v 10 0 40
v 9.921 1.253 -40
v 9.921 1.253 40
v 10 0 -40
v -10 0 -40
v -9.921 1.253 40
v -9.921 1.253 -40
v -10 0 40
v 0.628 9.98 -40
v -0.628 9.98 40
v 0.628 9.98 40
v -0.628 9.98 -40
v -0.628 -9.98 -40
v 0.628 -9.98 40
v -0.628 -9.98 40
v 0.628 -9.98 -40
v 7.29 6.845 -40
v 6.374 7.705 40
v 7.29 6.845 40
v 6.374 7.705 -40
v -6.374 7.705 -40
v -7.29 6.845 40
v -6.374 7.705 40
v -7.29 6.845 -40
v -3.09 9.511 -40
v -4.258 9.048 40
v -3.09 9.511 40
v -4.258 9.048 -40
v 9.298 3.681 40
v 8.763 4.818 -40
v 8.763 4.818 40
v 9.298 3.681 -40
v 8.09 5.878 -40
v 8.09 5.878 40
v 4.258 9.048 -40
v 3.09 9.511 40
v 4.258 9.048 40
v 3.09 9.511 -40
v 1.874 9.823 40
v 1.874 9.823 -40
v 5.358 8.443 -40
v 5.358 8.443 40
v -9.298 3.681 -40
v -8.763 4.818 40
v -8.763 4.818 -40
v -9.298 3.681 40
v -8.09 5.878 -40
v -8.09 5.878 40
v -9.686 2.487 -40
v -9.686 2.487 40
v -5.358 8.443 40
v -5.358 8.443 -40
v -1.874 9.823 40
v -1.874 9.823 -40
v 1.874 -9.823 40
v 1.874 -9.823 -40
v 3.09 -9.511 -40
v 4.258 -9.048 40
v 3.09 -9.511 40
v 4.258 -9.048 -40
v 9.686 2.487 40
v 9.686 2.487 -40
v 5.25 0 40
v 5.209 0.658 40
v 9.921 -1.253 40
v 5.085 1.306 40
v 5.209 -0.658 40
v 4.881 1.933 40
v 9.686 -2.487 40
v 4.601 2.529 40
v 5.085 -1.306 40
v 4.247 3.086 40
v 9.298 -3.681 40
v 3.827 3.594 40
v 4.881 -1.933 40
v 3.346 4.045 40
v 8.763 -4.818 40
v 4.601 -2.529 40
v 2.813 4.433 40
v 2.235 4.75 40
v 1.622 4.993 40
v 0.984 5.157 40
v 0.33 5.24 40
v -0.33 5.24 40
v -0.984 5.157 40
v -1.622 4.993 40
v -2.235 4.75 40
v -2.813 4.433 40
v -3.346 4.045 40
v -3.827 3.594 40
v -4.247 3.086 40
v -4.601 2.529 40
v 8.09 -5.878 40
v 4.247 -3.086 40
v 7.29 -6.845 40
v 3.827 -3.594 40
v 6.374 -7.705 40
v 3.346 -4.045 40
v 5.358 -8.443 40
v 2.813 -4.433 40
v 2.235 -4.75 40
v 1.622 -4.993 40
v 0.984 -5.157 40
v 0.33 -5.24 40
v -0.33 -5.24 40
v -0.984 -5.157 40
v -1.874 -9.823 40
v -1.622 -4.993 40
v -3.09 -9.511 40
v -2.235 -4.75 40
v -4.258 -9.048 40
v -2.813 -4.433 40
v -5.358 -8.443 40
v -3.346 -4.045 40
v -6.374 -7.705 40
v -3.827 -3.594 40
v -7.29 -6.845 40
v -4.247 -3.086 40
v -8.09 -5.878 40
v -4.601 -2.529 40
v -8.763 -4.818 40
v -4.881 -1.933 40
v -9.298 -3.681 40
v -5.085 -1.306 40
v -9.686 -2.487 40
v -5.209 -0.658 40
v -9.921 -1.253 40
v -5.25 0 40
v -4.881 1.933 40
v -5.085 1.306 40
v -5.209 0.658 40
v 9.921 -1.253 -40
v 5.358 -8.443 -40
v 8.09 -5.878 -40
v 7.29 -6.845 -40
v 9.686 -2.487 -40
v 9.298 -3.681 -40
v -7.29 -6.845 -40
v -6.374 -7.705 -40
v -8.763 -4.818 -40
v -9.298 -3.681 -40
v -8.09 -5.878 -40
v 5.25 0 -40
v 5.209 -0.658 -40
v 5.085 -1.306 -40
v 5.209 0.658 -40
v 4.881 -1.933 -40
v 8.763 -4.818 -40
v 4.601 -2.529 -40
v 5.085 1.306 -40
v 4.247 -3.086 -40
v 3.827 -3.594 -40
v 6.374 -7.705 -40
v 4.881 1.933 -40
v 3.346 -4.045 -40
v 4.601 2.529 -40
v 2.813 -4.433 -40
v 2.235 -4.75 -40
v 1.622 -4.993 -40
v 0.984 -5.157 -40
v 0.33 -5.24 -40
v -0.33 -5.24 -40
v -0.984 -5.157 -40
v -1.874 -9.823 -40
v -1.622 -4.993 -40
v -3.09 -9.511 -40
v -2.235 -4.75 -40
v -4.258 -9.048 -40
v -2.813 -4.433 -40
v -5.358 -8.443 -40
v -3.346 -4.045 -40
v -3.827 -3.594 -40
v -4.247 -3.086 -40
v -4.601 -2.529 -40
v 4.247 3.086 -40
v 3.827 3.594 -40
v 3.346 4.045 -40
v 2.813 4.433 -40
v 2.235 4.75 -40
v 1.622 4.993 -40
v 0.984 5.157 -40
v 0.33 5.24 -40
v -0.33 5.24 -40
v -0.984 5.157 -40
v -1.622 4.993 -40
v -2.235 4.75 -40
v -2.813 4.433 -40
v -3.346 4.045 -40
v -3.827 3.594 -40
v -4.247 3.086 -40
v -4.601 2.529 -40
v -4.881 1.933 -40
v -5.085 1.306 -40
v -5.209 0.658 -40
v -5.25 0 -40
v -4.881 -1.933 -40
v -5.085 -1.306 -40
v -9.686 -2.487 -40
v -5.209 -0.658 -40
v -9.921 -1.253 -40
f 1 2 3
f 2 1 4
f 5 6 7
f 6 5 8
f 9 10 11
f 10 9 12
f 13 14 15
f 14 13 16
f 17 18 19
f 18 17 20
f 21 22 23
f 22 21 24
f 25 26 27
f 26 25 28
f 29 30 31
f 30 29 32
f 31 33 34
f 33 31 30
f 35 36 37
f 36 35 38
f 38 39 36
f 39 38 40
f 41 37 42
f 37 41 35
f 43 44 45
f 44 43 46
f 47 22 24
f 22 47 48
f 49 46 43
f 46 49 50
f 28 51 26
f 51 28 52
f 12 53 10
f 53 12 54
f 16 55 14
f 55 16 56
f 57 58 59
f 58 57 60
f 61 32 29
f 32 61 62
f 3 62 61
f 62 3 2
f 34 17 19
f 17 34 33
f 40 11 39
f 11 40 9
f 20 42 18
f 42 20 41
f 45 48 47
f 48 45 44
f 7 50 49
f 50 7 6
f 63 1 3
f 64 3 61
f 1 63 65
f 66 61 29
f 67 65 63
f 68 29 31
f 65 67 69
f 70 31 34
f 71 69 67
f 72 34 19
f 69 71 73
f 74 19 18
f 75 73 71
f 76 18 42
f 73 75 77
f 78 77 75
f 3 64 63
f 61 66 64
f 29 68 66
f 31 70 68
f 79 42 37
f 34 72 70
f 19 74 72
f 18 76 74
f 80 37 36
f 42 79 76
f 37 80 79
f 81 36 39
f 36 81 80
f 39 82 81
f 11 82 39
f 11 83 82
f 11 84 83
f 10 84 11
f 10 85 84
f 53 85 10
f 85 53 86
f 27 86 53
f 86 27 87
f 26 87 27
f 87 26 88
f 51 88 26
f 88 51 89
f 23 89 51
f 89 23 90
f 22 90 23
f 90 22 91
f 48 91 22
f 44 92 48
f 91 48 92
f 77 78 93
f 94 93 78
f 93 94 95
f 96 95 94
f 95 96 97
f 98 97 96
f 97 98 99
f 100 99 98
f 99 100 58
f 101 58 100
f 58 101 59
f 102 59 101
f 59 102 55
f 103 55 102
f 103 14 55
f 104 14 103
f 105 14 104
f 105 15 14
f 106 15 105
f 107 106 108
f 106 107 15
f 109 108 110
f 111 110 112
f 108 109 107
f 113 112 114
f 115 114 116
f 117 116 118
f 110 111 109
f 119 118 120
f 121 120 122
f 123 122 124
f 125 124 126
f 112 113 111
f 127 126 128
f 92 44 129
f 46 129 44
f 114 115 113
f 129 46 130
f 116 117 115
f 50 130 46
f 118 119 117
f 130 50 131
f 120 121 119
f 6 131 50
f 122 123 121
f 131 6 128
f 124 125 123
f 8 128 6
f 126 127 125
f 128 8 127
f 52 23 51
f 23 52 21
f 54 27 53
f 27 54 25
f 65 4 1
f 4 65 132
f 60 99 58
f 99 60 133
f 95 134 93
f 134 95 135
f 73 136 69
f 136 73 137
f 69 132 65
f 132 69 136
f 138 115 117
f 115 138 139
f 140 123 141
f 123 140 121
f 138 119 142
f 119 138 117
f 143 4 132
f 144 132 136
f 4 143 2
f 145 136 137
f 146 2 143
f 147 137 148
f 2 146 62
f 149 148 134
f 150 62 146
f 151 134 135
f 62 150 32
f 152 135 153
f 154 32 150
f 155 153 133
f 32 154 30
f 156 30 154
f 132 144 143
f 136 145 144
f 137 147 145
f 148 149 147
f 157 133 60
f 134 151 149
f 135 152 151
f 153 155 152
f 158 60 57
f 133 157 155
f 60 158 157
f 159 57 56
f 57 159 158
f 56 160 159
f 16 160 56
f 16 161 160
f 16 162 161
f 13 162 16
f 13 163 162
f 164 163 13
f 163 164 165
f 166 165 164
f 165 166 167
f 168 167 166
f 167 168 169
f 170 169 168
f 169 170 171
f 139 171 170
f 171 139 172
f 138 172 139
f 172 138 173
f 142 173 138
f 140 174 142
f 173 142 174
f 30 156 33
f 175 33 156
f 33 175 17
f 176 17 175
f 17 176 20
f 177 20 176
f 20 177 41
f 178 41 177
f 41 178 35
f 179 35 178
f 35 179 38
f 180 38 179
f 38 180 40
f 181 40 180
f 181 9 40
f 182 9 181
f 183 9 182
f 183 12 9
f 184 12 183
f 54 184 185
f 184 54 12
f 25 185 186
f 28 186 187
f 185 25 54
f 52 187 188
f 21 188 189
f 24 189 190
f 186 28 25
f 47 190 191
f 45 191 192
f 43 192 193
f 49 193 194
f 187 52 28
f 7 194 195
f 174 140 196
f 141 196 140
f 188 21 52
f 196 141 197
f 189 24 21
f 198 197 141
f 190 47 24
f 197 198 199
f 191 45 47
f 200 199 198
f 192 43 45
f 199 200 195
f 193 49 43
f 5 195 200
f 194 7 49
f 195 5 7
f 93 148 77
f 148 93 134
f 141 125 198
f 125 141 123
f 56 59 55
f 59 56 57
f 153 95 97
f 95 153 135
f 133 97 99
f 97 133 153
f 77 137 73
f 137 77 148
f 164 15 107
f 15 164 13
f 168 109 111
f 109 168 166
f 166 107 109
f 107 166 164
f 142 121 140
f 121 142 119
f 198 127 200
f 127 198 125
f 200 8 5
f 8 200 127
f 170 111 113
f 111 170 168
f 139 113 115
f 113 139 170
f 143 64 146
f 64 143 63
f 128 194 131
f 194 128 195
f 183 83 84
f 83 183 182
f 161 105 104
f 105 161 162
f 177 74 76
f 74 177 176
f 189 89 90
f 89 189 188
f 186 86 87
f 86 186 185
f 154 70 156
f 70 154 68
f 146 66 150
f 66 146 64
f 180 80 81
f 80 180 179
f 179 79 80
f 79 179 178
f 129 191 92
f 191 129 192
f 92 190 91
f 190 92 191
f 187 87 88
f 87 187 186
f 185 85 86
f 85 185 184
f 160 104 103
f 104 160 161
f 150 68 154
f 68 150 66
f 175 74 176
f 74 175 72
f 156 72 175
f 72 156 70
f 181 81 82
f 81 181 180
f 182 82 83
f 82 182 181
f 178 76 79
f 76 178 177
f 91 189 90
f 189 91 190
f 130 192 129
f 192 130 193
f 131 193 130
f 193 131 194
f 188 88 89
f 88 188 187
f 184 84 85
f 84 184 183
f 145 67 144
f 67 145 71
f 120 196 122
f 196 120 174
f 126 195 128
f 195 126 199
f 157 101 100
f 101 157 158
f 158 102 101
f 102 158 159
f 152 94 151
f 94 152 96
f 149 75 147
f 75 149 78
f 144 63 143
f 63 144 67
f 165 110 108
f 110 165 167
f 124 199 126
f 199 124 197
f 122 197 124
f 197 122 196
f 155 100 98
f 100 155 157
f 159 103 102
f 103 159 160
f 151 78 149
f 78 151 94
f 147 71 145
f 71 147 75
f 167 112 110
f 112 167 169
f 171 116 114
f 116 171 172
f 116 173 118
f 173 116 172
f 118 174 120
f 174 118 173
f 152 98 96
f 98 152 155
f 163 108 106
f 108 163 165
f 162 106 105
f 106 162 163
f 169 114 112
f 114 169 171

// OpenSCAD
$fn = 50;


difference() {
	union() {
		translate(v = [0, 0, -40.0000000000]) {
			cylinder(h = 80, r = 10.0000000000);
		}
	}
	union() {
		translate(v = [0, 0, -100.0000000000]) {
			cylinder(h = 200, r = 5.2500000000);
		}
	}
}
